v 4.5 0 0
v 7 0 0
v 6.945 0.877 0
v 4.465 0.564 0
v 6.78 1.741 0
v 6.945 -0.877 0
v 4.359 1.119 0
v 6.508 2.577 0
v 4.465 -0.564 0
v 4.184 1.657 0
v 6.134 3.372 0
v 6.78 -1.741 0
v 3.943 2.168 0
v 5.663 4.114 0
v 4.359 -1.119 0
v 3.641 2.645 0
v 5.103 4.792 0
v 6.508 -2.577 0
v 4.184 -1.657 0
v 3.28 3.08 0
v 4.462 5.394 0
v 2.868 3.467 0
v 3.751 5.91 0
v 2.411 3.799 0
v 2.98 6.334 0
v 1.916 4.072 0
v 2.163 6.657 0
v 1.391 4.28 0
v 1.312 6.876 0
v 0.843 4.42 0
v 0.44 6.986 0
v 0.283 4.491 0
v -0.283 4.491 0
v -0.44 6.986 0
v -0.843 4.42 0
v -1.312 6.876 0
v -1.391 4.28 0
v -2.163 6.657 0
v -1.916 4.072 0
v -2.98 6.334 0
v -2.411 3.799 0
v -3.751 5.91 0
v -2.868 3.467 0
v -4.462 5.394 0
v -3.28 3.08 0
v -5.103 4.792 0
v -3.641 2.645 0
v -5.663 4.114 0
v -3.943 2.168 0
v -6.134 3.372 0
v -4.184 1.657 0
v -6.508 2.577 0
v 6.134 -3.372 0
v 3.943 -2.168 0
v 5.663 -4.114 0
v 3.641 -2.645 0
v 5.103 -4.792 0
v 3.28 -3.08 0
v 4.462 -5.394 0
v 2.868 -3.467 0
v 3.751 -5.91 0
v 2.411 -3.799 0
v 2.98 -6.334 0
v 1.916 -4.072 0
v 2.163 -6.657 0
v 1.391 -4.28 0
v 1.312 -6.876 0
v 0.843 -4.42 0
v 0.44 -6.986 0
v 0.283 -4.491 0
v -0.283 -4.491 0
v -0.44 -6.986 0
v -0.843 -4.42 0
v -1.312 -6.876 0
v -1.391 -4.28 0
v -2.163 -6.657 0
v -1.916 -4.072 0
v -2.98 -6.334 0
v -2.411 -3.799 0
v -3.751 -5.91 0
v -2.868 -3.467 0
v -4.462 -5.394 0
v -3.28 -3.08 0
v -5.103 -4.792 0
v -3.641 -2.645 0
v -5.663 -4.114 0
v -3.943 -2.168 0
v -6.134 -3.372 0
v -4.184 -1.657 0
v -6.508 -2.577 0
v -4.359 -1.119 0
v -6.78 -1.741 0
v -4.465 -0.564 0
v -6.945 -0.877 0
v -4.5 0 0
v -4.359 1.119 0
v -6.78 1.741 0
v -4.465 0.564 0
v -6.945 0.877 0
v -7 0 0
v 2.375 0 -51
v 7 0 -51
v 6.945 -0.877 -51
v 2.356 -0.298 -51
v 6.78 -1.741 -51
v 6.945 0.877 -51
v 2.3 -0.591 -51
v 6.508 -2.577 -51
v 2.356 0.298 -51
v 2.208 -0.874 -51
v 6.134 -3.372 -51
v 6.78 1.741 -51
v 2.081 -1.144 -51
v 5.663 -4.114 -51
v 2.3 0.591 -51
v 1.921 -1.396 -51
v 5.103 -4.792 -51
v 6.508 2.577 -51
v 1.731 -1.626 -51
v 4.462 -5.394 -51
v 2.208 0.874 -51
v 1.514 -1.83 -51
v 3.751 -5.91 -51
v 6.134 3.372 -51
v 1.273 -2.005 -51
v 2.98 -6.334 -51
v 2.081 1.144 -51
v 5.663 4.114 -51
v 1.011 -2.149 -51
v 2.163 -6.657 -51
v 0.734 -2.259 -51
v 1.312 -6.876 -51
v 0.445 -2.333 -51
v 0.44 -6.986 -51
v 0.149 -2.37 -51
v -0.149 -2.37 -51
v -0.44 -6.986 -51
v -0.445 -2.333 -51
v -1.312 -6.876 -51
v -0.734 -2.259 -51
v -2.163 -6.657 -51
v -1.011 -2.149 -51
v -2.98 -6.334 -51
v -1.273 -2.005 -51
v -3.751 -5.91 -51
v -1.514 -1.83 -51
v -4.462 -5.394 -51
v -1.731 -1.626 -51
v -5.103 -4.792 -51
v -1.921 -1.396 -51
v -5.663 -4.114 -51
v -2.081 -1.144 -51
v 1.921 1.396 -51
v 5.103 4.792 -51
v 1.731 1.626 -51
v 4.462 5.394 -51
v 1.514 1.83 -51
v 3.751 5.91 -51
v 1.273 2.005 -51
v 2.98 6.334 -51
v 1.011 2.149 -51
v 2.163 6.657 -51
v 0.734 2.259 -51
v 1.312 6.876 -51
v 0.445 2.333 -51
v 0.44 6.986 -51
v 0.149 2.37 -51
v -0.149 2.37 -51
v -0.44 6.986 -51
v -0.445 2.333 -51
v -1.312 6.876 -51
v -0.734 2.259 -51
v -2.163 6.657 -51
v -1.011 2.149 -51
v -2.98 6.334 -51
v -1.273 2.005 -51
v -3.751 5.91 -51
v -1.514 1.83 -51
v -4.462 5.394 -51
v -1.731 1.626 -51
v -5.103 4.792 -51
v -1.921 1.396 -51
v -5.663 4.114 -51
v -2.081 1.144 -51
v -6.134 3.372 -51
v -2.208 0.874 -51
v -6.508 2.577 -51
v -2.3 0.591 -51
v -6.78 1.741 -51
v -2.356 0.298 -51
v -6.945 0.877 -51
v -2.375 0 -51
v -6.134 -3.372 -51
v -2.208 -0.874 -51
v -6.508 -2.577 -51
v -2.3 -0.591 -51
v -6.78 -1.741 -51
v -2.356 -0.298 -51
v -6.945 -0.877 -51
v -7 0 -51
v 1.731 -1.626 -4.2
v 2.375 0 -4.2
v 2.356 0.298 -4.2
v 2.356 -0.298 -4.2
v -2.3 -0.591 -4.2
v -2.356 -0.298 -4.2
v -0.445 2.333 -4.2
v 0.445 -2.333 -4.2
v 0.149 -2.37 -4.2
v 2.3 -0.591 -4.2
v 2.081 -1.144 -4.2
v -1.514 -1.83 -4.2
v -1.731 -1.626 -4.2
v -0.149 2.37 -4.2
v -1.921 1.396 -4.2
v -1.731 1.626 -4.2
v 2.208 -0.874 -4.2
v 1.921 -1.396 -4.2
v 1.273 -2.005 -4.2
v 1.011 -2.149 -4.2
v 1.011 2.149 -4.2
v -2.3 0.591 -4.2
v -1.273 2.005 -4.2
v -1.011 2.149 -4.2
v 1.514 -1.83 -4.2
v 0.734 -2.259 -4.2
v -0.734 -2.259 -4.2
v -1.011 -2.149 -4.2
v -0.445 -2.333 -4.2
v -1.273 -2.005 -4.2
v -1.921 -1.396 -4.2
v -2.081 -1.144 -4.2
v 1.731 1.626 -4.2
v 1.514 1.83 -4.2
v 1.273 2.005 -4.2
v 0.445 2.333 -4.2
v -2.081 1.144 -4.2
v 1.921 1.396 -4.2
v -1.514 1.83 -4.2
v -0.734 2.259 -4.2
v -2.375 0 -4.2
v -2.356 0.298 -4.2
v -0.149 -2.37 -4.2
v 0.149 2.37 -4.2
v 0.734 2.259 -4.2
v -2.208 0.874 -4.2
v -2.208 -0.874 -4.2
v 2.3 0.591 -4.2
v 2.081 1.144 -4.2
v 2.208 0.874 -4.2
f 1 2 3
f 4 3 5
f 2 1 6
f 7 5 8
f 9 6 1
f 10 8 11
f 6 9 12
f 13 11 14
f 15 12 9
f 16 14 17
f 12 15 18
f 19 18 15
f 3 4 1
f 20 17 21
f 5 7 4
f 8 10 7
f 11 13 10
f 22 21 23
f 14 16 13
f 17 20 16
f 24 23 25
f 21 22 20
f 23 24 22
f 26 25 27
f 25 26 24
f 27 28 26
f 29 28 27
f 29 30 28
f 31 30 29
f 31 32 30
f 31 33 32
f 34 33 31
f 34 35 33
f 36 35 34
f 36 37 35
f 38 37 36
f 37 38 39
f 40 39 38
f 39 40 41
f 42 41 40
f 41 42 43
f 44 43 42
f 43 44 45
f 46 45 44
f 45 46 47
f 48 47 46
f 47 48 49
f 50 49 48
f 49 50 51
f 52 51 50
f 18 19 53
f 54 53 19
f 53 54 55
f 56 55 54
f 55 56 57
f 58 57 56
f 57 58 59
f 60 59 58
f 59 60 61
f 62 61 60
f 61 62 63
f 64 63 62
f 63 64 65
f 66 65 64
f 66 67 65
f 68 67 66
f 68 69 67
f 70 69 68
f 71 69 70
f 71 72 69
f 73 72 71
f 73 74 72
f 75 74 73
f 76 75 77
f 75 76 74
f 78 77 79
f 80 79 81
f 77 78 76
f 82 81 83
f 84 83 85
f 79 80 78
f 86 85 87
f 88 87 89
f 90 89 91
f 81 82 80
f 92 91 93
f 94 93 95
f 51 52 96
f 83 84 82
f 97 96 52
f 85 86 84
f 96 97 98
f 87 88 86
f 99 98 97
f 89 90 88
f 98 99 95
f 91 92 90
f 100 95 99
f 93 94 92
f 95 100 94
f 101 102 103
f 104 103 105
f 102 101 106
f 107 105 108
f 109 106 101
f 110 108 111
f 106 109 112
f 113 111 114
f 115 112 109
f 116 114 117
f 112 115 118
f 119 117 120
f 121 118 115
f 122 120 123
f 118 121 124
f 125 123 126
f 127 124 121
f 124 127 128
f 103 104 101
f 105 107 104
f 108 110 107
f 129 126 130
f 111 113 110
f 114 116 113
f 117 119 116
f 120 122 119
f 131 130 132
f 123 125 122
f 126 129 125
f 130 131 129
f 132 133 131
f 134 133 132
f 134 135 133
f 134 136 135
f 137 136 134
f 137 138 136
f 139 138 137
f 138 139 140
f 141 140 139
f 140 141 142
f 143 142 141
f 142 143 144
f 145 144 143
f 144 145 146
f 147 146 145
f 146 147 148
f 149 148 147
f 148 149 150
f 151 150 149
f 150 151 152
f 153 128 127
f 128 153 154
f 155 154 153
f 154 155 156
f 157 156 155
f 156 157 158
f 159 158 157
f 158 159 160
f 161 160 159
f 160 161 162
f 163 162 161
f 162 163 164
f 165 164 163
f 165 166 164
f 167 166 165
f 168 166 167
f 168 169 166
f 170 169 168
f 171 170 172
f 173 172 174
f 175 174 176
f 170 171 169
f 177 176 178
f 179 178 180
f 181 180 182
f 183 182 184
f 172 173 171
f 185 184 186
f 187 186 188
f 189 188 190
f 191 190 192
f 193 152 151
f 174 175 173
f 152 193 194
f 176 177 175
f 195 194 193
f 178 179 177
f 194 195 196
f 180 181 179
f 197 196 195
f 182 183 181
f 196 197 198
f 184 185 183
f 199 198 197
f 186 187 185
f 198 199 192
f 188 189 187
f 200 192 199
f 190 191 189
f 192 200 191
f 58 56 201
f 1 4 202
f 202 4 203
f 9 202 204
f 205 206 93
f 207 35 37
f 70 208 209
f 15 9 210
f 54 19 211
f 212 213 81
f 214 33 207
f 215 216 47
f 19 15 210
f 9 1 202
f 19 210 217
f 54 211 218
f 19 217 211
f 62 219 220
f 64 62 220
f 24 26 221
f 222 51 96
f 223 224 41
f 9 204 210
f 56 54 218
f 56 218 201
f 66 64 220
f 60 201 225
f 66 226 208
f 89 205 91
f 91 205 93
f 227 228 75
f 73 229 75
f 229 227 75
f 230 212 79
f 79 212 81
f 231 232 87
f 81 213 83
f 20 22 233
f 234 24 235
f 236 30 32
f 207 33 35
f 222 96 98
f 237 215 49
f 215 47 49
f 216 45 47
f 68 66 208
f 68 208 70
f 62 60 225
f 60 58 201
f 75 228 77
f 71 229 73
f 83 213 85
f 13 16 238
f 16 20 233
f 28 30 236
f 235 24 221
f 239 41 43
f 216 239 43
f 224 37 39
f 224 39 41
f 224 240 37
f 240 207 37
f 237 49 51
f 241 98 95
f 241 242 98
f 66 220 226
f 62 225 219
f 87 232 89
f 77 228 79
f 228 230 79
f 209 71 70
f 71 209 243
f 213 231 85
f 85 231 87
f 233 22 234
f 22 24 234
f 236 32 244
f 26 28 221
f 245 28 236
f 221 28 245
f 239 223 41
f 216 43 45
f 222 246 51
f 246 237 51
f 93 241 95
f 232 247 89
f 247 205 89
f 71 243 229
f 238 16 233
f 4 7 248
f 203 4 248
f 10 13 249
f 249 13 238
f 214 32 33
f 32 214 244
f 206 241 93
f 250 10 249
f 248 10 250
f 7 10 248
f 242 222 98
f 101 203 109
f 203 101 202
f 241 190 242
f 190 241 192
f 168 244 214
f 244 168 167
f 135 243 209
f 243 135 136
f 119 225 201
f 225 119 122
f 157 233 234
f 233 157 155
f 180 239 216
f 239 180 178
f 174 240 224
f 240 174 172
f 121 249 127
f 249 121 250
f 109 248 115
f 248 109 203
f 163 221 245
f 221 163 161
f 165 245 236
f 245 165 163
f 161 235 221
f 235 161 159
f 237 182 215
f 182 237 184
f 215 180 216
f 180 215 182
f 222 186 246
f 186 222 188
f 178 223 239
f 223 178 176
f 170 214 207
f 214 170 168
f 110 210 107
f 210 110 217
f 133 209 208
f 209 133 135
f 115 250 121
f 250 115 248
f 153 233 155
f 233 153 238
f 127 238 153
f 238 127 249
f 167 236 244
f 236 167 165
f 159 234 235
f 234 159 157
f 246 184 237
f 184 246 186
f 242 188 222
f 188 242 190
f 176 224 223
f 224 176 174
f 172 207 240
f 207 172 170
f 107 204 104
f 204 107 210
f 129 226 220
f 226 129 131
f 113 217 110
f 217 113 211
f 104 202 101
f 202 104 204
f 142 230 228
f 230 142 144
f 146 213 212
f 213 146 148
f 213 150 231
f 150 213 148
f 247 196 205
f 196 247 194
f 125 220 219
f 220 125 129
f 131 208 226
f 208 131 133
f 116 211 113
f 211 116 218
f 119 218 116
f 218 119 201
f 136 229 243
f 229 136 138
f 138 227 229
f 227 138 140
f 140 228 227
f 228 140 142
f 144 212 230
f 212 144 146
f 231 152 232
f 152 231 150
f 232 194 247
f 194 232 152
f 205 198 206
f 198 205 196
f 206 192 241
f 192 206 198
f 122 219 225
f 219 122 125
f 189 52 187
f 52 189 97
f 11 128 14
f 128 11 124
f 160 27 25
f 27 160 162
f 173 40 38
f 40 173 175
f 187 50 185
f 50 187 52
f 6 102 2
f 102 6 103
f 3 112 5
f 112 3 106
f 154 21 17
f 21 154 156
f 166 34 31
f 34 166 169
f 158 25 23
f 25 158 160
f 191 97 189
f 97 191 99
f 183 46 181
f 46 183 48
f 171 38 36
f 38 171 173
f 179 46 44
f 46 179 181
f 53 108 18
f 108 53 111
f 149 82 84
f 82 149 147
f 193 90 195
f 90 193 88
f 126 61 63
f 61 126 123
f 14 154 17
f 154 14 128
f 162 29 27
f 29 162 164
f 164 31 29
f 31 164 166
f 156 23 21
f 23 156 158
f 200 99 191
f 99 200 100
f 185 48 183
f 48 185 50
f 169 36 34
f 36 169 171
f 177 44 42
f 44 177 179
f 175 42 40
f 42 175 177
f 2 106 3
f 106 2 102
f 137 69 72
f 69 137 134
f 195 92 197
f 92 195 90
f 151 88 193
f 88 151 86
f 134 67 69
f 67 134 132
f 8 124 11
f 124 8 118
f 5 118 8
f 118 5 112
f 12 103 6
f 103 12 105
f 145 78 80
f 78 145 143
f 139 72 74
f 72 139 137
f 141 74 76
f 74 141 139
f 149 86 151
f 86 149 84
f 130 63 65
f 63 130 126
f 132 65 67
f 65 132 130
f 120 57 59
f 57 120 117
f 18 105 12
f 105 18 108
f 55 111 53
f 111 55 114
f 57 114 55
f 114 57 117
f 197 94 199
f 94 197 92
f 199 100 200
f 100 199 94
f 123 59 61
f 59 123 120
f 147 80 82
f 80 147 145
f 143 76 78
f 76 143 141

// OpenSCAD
$fn = 50;


difference() {
	union() {
		translate(v = [0, 0, -51.0000000000]) {
			cylinder(h = 51, r = 7.0000000000);
		}
		cylinder(h = 0, r = 13.0000000000);
	}
	union() {
		translate(v = [0, 0, 0]) {
			rotate(a = [0, 0, 0]) {
				difference() {
					union() {
						#translate(v = [0, 0, -51.0000000000]) {
							cylinder(h = 51, r = 2.2500000000);
						}
						#translate(v = [0, 0, -4.2000000000]) {
							cylinder(h = 4.2000000000, r = 7.0000000000, r1 = 2.3750000000, r2 = 4.5000000000);
						}
						#translate(v = [0, 0, -51.0000000000]) {
							cylinder(h = 51, r = 2.3750000000);
						}
						#translate(v = [0, 0, -51.0000000000]) {
							cylinder(h = 51, r = 2.2500000000);
						}
					}
					union();
				}
			}
		}
	}
}
